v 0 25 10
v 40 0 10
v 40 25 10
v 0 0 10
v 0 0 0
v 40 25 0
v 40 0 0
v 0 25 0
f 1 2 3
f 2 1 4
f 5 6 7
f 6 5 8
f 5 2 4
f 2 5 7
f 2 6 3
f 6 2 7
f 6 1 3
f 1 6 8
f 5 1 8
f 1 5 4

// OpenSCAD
// ===== 例題1: はじめての箱（ウォームアップ）=====
// 直方体を1つ作るだけのいちばん簡単なコードです。
// 数字を変えると、たて・よこ・高さが変わります。

cube([40, 25, 10]);   // [よこ, おくゆき, たかさ]（単位はmm）
